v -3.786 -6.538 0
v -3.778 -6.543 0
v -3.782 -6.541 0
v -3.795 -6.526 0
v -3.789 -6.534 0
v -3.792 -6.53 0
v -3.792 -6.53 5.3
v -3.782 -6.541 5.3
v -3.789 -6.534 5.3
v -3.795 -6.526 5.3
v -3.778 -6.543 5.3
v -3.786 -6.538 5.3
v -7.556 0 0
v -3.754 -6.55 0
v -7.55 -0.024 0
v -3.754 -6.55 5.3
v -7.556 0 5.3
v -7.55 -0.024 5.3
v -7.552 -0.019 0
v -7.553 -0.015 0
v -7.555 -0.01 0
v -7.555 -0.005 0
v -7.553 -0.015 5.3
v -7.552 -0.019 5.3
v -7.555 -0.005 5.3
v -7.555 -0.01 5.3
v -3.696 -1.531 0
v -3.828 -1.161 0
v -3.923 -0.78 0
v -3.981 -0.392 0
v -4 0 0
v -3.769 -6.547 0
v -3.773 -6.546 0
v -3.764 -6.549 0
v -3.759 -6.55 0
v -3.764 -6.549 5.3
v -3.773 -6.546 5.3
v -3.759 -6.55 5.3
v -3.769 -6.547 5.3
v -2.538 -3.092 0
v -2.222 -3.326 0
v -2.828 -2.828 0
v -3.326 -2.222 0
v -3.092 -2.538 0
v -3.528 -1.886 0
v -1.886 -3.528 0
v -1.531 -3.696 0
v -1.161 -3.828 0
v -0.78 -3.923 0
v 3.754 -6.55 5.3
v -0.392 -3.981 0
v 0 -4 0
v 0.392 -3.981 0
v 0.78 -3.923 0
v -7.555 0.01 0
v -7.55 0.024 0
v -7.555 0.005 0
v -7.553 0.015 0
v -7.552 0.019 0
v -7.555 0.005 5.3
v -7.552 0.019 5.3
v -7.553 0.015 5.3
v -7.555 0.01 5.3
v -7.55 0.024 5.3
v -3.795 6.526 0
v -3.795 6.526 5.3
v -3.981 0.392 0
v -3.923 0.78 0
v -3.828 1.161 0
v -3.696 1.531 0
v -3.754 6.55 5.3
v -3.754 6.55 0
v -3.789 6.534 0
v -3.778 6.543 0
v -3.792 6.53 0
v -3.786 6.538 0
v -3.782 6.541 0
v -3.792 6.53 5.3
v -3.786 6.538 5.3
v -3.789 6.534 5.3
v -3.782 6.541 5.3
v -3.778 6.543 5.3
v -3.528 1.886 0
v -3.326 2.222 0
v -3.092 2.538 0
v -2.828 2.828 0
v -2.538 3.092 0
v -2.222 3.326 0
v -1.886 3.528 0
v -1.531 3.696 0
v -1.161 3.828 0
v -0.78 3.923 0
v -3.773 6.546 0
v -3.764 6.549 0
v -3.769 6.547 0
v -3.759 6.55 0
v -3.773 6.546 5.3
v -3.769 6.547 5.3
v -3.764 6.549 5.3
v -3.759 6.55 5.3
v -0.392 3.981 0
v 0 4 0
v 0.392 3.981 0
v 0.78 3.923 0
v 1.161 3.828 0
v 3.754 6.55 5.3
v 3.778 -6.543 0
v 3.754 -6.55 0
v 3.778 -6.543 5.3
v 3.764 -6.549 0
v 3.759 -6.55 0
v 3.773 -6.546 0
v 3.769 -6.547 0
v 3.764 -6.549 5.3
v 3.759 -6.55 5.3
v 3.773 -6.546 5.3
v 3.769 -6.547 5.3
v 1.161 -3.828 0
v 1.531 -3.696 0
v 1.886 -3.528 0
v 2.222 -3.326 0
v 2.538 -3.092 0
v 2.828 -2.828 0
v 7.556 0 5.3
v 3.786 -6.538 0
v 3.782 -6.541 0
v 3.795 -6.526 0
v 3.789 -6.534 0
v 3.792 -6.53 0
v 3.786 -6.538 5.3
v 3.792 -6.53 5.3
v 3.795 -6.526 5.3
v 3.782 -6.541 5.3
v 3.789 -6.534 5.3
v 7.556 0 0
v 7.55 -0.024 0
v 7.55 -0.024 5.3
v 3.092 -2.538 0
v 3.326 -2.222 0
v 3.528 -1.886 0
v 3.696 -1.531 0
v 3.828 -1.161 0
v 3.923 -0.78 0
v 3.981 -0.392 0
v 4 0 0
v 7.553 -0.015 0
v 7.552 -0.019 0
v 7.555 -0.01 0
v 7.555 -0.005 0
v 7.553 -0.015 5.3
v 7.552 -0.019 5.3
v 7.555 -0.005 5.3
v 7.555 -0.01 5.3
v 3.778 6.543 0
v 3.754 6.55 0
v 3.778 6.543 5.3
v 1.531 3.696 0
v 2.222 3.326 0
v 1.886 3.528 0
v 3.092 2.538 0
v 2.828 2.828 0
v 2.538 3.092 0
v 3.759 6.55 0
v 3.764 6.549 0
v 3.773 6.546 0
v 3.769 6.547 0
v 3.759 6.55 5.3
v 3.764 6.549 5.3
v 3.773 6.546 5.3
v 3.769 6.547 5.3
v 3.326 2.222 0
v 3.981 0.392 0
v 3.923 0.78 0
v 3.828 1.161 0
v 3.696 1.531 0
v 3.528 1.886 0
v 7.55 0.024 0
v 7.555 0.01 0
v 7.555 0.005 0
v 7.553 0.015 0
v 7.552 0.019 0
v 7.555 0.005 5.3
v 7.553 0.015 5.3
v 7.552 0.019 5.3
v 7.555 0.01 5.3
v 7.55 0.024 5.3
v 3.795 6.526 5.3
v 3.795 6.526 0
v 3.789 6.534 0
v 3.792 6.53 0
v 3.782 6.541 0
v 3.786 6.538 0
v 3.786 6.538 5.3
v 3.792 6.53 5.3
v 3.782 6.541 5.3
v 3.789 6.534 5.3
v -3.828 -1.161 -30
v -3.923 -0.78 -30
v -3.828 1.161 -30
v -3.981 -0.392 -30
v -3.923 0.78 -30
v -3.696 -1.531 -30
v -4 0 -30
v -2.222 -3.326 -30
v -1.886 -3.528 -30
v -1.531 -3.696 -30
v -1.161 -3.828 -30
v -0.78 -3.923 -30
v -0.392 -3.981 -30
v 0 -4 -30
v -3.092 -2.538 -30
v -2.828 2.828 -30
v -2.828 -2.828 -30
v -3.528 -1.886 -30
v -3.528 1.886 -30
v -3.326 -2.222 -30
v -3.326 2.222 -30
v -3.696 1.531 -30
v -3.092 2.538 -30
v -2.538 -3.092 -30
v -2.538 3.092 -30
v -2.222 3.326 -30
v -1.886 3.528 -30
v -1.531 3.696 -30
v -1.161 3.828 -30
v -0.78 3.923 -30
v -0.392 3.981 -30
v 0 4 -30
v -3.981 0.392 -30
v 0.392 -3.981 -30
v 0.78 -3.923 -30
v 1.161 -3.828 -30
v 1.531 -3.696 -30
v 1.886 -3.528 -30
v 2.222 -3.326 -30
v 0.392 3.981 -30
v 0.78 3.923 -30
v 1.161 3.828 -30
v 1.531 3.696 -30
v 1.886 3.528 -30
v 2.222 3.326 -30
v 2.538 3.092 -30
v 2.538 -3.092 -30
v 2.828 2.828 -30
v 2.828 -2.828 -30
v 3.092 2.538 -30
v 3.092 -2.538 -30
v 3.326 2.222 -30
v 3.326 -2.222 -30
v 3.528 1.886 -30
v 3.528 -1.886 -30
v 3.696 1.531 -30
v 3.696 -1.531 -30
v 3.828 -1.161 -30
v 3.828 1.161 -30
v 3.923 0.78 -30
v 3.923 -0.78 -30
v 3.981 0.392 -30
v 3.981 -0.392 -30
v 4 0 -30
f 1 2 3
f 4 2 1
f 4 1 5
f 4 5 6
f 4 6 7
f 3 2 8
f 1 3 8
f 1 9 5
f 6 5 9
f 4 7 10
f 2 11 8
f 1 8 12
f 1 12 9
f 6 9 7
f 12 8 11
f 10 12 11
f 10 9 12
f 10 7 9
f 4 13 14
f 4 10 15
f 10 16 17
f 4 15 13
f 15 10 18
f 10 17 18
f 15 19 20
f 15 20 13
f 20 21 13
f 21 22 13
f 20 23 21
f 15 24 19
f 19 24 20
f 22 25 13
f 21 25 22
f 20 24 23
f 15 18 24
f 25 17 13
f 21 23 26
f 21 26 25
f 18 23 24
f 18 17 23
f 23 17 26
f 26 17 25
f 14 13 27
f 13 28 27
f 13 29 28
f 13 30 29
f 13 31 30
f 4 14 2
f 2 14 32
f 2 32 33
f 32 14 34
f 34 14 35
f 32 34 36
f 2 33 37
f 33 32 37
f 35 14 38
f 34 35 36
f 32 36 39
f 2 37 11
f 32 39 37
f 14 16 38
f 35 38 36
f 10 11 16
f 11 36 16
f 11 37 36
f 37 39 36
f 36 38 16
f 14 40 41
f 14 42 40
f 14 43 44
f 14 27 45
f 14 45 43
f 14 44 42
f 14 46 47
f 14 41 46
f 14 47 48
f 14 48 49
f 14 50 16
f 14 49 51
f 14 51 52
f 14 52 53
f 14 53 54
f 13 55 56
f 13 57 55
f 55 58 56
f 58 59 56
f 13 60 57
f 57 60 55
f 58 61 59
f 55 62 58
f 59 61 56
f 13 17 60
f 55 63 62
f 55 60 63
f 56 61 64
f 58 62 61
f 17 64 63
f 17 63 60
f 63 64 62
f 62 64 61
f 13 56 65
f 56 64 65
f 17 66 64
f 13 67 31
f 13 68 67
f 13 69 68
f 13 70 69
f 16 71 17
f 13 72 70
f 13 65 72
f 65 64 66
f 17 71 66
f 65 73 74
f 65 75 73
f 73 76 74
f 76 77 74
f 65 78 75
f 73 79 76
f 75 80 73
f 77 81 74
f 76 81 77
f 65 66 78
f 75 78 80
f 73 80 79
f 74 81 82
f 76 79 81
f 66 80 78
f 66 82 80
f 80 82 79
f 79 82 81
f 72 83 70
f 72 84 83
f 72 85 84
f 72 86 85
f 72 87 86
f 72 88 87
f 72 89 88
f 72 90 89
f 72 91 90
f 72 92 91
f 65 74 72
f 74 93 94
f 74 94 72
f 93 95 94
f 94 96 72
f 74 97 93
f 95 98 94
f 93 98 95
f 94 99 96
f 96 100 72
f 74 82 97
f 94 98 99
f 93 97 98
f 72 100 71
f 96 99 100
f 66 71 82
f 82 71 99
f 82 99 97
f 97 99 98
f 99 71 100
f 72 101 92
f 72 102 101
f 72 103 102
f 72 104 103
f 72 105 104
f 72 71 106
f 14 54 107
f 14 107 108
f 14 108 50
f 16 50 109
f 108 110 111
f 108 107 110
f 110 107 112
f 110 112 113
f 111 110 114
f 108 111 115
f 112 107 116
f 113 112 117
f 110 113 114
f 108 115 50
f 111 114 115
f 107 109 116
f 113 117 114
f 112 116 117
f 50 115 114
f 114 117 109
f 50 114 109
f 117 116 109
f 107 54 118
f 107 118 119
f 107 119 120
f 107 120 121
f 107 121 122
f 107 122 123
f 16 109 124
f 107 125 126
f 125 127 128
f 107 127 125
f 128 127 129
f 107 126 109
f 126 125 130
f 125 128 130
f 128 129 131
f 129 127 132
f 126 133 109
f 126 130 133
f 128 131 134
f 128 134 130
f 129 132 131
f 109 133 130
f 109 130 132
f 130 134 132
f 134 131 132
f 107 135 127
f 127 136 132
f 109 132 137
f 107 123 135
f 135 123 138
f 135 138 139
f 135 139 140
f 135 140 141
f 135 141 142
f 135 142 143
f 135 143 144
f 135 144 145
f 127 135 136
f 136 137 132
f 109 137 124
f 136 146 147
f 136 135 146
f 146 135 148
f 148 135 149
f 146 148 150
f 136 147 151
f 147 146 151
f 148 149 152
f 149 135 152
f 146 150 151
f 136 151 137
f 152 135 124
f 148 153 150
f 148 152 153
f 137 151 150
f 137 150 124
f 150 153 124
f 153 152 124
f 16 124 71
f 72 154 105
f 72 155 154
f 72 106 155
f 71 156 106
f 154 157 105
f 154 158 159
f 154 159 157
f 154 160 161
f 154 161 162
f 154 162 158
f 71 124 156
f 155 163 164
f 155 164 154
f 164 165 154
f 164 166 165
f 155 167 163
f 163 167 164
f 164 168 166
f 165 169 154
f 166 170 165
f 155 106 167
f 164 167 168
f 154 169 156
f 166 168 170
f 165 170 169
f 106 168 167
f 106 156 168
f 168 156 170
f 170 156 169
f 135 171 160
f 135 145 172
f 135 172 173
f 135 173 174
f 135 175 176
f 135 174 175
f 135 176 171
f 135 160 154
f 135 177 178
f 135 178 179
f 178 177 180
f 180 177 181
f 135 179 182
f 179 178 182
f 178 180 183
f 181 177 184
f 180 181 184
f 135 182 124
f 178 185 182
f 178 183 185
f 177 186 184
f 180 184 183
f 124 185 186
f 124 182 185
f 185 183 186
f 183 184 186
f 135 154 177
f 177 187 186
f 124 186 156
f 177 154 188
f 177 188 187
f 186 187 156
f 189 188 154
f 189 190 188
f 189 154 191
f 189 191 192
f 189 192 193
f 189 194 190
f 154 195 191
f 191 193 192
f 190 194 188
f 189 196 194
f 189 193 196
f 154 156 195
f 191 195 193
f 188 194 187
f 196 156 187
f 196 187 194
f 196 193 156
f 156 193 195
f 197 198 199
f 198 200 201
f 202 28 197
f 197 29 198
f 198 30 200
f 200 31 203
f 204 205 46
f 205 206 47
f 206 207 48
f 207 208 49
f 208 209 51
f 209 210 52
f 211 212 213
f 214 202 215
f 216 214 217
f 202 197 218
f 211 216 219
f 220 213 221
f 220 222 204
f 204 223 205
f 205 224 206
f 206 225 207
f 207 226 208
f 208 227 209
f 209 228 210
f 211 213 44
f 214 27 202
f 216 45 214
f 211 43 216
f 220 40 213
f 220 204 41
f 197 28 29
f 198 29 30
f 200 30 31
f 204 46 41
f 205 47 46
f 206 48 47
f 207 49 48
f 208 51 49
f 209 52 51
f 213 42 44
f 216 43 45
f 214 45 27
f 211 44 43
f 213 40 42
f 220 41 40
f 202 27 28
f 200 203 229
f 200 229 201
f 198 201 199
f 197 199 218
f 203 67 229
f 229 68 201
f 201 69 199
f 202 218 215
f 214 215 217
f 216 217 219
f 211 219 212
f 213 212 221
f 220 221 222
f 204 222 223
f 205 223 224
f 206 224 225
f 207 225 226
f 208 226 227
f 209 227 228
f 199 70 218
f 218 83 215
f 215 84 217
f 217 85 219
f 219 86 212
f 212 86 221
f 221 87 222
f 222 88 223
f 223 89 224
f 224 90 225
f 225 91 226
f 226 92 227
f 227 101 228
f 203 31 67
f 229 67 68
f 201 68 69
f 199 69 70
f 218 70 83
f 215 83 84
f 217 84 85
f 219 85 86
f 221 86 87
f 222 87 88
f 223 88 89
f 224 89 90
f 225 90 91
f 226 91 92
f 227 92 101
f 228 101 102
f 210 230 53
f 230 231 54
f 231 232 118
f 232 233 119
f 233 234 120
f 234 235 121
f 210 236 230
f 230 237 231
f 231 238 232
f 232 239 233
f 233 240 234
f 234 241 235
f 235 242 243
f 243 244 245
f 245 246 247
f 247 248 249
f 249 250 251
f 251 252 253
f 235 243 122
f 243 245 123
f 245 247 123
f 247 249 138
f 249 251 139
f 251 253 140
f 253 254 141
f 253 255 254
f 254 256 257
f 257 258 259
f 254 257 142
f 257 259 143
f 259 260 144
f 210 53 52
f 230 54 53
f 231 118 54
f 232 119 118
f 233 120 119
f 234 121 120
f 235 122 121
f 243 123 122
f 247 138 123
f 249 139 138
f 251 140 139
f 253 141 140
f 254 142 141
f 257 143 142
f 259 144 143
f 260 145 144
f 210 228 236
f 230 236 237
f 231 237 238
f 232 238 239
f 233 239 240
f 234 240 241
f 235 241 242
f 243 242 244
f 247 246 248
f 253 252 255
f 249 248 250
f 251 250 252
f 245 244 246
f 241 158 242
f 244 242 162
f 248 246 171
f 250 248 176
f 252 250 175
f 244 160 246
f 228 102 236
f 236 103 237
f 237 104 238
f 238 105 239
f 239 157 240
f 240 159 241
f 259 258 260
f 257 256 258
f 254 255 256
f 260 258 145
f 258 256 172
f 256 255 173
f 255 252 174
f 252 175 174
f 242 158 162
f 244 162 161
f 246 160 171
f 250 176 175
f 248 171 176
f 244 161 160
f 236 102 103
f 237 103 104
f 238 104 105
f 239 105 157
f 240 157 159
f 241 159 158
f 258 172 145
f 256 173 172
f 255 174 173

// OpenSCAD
// M8 Hex Bolt (Simplified)
// $fn defines the smoothness of the circular shank.
$fn = 64;

// Dimensions
head_across_flats = 13;
head_height = 5.3;
shank_diameter = 8;
shank_length = 30;

// The distance from the center to each vertex of the hexagon
// is calculated as: R = (across-flats) / sqrt(3)
head_radius_vertex = head_across_flats / sqrt(3);

// --- Shank ---
// Placed from z = -30 to z = 0
translate([0, 0, -shank_length])
    cylinder(d=shank_diameter, h=shank_length);

// --- Head ---
// Placed from z = 0 to z = 5.3
// A hexagon is created by taking the hull of 6 small cylinders 
// placed at the vertices of a hexagon.
hull() {
    for (i = [0:5]) {
        rotate([0, 0, i * 60])
            translate([head_radius_vertex, 0, 0])
                cylinder(d=0.1, h=head_height);
    }
}
